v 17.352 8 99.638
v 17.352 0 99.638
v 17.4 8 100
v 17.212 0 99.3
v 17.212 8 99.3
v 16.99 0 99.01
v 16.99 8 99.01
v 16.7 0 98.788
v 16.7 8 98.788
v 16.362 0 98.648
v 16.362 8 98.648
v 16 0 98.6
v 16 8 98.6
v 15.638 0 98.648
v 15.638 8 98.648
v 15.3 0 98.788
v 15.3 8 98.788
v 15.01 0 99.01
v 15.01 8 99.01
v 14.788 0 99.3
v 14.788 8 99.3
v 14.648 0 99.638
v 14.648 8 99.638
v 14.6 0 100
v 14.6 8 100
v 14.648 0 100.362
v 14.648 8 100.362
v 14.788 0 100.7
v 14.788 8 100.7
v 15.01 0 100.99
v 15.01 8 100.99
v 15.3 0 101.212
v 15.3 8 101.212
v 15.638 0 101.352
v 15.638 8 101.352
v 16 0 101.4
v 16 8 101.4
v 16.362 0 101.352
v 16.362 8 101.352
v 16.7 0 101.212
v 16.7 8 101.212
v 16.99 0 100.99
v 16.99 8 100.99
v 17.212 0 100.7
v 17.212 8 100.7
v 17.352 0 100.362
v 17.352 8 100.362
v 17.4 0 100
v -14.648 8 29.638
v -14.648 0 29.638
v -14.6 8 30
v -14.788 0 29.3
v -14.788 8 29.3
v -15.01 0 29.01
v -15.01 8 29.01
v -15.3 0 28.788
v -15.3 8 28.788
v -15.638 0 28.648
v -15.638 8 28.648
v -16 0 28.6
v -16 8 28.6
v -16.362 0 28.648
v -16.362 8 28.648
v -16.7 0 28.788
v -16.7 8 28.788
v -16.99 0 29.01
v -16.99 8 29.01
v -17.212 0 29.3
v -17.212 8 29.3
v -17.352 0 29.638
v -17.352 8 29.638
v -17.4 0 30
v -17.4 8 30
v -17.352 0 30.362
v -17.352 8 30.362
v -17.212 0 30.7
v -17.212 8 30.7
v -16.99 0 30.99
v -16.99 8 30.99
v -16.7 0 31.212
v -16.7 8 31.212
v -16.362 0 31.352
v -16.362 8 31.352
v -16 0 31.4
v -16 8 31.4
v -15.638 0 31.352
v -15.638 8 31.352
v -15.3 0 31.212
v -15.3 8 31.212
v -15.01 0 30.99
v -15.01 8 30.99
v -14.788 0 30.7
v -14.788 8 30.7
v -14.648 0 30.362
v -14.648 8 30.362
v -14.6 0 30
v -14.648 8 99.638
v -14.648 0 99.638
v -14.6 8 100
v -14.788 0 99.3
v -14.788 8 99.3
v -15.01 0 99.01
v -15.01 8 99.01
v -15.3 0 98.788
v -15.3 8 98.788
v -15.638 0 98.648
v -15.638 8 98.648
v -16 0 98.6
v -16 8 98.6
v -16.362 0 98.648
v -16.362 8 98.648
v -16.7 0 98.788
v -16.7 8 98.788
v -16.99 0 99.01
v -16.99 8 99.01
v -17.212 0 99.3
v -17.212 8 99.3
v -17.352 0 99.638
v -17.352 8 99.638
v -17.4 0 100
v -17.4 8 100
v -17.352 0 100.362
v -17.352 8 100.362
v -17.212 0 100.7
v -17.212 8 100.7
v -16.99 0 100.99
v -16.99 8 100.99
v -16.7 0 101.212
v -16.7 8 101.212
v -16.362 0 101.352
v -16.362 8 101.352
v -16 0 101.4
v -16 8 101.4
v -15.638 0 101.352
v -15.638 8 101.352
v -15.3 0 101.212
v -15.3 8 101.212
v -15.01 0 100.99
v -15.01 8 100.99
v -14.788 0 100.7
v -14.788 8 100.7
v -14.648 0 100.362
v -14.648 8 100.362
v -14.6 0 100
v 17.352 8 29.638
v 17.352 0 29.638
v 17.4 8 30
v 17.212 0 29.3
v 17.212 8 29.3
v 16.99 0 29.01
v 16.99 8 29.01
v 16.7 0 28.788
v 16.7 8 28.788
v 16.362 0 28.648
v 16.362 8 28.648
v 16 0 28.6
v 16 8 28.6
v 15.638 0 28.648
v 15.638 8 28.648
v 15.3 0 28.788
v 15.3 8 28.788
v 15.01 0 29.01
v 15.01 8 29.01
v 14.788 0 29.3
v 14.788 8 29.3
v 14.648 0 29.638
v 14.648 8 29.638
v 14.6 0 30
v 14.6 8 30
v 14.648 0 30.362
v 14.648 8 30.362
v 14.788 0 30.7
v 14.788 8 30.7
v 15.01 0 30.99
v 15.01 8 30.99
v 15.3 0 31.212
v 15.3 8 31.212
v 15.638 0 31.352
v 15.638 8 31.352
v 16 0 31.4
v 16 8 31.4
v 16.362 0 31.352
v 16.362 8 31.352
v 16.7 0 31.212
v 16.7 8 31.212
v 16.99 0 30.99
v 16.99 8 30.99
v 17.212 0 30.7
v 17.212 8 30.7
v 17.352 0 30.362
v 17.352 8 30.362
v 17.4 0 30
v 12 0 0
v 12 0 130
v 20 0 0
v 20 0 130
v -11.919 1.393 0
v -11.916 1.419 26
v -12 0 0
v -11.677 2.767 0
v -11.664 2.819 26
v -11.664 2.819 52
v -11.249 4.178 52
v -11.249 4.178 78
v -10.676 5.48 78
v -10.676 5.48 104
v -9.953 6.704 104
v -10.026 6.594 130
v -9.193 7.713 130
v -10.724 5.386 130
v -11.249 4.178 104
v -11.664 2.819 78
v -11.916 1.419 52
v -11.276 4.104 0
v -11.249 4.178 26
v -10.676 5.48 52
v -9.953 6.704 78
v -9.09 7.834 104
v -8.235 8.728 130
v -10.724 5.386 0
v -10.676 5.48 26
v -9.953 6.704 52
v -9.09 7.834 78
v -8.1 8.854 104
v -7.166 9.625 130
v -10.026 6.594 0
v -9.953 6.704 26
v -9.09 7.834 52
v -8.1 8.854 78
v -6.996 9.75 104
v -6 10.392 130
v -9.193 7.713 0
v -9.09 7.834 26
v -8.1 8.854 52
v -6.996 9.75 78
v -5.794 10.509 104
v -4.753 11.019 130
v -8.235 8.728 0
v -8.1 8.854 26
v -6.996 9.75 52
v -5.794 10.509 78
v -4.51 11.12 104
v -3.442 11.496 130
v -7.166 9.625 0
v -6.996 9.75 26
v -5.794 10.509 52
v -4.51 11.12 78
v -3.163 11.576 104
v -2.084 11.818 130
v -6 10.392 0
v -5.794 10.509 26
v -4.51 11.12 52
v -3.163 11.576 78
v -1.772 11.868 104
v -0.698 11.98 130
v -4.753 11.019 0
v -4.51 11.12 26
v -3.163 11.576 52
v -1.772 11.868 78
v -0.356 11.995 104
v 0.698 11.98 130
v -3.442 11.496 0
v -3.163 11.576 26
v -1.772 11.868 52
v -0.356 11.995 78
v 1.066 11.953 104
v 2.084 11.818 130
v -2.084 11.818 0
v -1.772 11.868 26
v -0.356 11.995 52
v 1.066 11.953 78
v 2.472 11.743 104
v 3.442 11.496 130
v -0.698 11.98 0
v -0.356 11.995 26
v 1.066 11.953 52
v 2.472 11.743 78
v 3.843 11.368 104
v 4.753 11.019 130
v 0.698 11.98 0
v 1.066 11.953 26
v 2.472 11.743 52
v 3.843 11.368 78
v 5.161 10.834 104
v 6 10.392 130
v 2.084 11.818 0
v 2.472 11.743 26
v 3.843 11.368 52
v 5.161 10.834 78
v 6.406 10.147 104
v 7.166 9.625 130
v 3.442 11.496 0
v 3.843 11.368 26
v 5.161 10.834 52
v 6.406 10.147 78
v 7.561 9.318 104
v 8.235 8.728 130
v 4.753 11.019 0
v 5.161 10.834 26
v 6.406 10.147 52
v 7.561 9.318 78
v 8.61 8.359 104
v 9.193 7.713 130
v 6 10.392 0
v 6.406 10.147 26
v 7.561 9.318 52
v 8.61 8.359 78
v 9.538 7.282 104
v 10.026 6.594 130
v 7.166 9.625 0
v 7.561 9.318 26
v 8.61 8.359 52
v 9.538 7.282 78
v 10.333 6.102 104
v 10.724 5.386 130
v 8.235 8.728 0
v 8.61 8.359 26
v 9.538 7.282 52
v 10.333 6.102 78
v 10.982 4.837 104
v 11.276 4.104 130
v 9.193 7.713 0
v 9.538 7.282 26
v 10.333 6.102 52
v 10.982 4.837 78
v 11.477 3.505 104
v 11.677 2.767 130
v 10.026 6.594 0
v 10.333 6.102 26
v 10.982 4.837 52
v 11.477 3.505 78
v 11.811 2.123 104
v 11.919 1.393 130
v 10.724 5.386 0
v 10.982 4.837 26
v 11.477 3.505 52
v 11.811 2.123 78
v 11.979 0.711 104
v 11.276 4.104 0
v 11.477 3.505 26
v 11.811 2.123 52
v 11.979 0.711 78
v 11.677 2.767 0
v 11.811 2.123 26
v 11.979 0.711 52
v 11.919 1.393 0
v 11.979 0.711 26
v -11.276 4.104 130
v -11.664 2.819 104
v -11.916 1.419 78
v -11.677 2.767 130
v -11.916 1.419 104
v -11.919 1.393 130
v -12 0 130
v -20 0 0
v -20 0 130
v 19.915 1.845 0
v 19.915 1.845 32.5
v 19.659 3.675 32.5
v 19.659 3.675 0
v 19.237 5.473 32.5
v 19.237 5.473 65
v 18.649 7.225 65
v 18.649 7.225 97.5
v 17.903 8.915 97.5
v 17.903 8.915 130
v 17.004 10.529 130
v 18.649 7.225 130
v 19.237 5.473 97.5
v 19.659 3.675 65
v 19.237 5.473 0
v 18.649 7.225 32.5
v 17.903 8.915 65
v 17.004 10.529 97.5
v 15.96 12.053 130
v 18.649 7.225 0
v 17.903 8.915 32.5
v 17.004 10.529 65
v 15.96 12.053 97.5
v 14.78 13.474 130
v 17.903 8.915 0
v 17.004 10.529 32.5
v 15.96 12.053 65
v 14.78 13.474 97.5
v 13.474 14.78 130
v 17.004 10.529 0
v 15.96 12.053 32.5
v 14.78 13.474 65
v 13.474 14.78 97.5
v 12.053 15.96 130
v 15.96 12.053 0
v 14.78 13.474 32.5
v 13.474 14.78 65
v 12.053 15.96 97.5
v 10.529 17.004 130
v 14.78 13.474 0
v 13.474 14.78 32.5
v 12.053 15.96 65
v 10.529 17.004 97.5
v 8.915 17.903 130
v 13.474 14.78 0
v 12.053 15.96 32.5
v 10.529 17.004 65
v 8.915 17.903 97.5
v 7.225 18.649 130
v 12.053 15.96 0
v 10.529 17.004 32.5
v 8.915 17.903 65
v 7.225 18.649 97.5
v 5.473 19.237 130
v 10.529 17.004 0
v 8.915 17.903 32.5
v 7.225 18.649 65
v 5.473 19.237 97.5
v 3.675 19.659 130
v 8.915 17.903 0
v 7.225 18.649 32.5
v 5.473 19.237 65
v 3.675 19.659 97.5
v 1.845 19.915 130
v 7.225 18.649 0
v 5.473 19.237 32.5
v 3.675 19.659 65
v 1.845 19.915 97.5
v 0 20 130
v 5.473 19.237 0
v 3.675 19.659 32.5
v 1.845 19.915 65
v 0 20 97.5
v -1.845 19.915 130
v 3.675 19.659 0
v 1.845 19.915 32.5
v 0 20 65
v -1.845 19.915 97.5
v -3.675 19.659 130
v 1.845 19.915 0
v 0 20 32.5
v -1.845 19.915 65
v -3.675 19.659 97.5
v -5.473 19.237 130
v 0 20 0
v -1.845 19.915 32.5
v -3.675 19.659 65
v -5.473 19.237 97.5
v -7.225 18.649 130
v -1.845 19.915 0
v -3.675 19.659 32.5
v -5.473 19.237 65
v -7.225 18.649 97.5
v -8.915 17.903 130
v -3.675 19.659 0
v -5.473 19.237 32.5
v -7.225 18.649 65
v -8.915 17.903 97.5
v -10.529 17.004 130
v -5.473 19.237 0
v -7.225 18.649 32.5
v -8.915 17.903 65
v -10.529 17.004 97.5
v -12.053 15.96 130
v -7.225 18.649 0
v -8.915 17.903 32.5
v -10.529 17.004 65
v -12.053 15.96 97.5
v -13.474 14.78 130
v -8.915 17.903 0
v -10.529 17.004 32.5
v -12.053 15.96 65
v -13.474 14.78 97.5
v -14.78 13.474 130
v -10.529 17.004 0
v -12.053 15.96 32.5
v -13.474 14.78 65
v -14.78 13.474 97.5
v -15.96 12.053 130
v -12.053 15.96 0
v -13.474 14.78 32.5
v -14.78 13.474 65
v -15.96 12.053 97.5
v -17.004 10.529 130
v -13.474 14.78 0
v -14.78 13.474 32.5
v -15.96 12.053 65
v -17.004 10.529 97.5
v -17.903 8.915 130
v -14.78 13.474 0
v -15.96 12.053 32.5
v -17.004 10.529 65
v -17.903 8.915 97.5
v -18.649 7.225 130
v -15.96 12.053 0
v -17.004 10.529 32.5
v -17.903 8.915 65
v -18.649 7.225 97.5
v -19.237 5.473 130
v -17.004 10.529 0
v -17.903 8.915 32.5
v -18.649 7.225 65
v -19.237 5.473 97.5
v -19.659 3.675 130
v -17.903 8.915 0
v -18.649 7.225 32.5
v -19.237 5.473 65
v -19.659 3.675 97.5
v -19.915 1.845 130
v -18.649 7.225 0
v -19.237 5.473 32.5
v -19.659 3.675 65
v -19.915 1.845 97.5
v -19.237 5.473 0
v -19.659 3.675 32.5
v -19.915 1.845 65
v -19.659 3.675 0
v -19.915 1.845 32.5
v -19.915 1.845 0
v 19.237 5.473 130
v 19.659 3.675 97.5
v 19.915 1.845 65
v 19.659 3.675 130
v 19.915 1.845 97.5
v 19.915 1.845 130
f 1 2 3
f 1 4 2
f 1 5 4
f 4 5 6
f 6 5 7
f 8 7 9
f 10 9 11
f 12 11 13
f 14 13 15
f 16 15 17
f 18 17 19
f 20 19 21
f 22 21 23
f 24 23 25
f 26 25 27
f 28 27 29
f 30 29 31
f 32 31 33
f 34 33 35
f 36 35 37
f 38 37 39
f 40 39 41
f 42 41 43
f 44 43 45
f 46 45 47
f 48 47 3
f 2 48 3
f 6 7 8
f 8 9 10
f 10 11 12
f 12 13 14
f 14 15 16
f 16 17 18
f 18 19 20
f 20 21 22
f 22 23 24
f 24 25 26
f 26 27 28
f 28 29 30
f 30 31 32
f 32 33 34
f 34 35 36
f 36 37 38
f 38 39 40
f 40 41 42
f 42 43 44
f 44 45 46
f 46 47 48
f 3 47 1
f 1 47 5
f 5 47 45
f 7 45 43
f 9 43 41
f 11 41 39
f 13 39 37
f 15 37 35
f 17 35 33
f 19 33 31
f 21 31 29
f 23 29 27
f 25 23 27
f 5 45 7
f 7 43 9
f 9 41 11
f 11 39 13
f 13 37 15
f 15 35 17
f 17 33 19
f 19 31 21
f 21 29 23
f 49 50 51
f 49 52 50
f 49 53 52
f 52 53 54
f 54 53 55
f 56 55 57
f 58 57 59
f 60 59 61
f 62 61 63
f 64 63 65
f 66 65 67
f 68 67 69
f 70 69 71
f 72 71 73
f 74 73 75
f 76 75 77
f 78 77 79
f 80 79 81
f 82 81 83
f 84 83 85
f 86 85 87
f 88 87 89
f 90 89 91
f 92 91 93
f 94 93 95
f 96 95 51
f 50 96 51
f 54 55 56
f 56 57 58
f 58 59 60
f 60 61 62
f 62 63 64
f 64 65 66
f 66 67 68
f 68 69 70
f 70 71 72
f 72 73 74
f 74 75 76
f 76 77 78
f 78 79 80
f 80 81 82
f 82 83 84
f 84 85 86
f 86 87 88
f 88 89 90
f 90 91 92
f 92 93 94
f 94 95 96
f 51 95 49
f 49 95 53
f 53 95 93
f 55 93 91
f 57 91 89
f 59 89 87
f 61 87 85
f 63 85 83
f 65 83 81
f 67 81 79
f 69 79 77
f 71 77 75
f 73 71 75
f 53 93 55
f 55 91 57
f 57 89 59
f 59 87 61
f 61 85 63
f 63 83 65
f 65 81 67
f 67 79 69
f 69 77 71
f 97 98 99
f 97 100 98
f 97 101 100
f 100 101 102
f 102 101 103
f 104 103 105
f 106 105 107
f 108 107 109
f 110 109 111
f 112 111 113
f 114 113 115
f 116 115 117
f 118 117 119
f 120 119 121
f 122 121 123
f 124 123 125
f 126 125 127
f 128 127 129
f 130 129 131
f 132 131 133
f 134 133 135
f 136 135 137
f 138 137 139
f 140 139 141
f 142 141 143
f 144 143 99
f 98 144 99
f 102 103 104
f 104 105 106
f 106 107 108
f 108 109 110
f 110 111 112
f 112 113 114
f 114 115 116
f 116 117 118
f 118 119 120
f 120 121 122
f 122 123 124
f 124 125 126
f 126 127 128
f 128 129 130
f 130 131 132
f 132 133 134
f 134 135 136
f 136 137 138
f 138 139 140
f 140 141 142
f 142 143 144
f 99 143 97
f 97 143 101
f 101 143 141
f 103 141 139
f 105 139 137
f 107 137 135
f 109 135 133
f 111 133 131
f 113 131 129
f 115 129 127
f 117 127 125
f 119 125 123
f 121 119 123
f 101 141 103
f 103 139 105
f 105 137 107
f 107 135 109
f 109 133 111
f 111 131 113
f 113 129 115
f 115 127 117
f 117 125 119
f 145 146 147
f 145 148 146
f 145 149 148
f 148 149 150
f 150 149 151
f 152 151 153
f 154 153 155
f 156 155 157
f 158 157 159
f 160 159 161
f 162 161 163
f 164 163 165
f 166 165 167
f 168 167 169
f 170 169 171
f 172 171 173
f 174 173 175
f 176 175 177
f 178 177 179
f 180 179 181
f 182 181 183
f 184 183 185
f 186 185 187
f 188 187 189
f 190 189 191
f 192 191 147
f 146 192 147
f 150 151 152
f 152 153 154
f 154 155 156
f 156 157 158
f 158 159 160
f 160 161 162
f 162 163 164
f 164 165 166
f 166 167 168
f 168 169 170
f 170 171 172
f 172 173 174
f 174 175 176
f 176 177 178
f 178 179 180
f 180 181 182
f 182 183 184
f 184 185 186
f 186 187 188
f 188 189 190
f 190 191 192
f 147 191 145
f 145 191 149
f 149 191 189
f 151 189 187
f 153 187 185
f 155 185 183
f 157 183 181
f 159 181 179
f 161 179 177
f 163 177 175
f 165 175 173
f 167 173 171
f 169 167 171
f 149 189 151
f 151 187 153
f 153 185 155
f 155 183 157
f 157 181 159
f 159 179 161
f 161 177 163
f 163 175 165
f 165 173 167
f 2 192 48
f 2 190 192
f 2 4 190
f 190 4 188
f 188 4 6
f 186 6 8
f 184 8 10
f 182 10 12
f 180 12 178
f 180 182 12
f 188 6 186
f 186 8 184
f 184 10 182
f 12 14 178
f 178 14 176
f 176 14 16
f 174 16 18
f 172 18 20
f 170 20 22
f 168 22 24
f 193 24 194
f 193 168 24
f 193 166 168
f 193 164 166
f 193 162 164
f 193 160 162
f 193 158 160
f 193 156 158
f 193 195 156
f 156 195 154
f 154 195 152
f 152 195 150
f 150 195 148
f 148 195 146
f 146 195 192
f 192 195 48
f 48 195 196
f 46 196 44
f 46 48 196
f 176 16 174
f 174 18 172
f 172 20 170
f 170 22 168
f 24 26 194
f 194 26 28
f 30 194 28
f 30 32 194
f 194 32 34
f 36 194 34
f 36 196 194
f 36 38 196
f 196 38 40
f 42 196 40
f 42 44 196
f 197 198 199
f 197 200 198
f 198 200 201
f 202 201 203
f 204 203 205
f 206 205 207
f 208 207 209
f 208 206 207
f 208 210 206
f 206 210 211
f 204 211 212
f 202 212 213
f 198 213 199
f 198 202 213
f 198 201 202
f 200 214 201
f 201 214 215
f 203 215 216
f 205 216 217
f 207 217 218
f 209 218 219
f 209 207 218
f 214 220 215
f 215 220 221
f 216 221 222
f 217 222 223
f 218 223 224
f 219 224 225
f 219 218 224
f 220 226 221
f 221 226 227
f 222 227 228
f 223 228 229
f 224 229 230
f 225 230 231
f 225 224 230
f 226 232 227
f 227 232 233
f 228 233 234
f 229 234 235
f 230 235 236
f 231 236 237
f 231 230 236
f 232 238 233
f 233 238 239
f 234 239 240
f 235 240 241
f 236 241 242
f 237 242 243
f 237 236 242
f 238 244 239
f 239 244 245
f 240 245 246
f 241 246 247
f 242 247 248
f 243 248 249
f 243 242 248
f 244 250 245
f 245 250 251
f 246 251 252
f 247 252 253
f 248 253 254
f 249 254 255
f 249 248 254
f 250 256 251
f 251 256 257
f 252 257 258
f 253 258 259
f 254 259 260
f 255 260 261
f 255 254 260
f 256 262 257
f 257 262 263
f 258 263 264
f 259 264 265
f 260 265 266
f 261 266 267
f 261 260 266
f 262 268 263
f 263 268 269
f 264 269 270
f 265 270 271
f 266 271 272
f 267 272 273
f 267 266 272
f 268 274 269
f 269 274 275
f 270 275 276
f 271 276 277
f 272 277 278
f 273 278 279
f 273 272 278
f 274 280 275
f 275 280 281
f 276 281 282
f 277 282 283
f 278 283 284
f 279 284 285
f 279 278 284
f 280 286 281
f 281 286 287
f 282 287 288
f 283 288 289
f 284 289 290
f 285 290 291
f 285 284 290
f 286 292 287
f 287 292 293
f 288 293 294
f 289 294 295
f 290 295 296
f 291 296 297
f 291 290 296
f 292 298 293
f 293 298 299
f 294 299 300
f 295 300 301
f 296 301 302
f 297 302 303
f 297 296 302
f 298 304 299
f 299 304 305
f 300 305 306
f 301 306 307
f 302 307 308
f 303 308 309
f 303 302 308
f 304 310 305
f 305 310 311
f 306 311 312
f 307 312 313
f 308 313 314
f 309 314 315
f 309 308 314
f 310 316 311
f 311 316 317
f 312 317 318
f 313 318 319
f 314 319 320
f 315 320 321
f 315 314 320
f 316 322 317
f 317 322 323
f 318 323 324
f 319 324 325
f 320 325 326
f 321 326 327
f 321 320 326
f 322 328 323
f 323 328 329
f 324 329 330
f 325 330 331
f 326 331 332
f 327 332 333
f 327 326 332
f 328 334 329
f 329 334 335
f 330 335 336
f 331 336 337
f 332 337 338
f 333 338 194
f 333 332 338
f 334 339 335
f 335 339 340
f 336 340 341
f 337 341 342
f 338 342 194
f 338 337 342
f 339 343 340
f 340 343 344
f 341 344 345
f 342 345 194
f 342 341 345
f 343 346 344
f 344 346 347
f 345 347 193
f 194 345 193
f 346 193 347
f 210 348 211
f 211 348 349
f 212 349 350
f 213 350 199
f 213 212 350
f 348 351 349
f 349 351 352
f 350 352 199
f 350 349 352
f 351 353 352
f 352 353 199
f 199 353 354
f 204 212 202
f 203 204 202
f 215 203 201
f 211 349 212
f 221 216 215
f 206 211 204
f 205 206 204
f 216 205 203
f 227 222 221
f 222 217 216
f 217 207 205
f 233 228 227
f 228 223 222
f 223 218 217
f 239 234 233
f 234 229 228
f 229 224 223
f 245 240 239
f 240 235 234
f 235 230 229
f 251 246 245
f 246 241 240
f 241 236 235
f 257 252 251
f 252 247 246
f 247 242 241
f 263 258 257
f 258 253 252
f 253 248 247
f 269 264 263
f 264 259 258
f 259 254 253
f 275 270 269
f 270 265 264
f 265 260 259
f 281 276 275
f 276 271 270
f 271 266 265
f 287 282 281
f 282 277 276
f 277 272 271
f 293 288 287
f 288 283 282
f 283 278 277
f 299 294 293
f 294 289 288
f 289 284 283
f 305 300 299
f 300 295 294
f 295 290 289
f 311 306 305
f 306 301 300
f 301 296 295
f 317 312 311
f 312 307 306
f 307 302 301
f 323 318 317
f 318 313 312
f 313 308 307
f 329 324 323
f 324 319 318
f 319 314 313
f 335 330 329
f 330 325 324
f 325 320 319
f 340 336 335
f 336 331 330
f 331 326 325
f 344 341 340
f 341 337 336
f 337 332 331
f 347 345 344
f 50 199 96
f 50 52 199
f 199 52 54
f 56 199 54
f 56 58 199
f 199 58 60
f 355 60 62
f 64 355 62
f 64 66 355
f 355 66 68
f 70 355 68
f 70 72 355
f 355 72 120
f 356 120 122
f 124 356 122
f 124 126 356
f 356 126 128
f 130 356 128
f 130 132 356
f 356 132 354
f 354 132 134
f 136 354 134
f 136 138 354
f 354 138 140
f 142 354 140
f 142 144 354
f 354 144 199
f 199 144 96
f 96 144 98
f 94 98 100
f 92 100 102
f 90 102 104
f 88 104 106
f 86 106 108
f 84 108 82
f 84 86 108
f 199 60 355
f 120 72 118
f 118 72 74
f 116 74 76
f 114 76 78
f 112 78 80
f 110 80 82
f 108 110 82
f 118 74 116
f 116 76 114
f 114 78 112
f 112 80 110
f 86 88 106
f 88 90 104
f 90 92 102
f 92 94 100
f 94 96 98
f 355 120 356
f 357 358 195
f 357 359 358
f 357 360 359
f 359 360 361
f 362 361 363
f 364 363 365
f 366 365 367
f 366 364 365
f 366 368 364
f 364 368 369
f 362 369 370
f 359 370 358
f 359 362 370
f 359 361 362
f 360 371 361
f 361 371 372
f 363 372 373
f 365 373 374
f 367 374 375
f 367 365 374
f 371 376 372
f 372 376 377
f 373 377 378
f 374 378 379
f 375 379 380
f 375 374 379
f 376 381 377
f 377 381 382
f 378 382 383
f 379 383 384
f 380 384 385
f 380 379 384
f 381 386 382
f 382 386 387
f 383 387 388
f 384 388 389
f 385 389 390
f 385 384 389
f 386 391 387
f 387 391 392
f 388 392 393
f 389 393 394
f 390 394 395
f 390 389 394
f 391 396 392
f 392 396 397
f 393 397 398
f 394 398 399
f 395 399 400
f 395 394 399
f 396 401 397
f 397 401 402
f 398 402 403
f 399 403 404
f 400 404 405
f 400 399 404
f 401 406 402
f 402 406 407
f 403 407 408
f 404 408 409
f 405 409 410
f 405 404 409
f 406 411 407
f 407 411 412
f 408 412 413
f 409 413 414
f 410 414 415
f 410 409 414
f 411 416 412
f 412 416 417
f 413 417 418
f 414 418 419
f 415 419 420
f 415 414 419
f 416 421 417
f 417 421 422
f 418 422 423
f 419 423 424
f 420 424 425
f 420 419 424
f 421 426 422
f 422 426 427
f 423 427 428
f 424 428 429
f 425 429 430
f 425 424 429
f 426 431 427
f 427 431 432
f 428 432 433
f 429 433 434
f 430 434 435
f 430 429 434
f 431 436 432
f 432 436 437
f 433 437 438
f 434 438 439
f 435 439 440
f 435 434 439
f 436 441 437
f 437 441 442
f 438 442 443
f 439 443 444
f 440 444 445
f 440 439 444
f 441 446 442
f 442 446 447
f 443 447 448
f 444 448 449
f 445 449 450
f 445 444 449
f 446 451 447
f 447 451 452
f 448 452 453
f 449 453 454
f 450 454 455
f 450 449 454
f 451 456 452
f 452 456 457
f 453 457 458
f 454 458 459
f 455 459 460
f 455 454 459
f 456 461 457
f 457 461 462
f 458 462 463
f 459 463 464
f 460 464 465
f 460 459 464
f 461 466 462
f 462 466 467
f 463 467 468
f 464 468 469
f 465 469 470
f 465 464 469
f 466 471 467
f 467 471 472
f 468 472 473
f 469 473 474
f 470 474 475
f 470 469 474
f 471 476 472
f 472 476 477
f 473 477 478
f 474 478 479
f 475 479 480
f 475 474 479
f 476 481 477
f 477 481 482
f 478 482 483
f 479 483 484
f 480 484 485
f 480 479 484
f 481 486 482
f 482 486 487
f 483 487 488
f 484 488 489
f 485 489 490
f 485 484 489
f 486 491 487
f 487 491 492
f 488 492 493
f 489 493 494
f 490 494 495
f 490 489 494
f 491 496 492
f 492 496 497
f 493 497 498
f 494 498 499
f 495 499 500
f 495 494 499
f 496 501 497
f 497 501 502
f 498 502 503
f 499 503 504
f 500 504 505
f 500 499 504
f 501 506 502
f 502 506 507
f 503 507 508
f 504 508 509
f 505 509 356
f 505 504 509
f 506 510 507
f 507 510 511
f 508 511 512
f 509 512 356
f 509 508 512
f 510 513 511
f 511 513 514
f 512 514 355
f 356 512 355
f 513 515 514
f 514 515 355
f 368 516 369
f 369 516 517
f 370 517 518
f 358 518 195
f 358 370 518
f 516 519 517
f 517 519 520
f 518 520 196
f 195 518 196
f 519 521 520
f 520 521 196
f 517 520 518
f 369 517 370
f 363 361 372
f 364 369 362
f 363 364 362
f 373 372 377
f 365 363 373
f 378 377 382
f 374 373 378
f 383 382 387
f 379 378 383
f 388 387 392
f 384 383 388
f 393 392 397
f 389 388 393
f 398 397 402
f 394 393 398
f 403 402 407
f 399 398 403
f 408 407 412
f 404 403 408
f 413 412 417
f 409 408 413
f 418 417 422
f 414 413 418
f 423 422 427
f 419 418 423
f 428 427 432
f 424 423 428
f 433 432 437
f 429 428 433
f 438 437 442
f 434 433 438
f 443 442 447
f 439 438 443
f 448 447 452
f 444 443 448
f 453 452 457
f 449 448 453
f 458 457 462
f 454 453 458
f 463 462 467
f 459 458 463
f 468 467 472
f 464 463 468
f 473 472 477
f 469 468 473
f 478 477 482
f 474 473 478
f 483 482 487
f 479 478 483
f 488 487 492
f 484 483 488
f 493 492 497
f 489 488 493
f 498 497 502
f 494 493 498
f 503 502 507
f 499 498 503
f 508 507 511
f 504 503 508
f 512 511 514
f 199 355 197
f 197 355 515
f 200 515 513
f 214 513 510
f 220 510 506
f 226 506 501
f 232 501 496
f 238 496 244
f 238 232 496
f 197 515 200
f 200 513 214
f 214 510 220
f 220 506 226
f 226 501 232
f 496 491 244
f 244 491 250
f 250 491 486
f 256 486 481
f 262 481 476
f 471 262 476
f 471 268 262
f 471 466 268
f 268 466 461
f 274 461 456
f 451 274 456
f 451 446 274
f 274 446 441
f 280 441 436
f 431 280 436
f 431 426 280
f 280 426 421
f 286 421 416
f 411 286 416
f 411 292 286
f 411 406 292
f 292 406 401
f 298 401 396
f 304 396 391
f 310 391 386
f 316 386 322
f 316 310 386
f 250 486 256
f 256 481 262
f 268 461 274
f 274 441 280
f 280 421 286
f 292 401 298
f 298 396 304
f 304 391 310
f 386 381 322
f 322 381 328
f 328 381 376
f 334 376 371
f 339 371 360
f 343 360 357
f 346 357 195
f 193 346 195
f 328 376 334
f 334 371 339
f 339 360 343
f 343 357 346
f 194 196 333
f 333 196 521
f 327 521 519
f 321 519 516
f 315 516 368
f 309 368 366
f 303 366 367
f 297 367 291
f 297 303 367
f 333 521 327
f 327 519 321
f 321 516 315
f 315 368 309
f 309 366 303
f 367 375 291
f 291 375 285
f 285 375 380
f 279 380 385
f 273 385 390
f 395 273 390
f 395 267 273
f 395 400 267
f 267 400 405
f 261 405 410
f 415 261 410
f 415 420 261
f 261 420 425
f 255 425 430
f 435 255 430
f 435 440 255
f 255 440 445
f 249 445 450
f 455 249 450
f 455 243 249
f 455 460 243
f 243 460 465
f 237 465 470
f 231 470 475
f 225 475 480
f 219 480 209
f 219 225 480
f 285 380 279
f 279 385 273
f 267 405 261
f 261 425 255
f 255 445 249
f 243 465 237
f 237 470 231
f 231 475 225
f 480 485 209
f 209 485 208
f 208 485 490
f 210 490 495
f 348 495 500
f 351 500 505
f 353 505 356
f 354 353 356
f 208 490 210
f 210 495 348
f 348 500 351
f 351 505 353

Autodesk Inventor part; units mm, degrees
ref_plane "YZ Plane" through (0, 0, 0) normal (1, 0, 0) x (0, 1, 0)
ref_plane "XZ Plane" through (0, 0, 0) normal (0, 1, 0) x (-1, 0, 0)
sketch "草圖2" plane through (0, 0, 0) normal (0, 0, 1) x (1, 0, 0)
  arc A0 (12, 0) -> (-12, 0) centre (0, 0) ccw
  arc A1 (20, 0) -> (-20, 0) centre (0, 0) ccw
  line L0 (-20, 0) -> (-12, 0)
  line L1 (12, 0) -> (20, 0)
  dimension "d4" = 24
  dimension "d5" = 40
extrude "擠出1" add sketch "草圖2" along normal blind 130
ref_plane "工作平面1" through (-20, 0, 0) normal (0, -1, 0) x (1, 0, 0)
sketch "草圖3" plane through (-20, 0, 0) normal (0, -1, 0) x (1, 0, 0)
  line L0 (40, 130) -> (0, 130) projected
  line L1 (0, 130) -> (4, 130)
  line L2 (0, 0) -> (40, 0) projected
  line L3 (40, 0) -> (36, 0)
  circle A0 centre (4, 30) radius 1.4
  circle A1 centre (4, 100) radius 1.4
  circle A2 centre (36, 100) radius 1.4
  circle A3 centre (36, 30) radius 1.4
  point P0 (20, 0)
  dimension "d9" = 4
  dimension "d10" = 4
  dimension "d13" = 2.8
  dimension "d14" = 2.8
  dimension "d15" = 2.8
  dimension "d16" = 2.8
extrude "擠出2" cut sketch "草圖3" against normal blind 8
properties part number "holding_positionLFT"
